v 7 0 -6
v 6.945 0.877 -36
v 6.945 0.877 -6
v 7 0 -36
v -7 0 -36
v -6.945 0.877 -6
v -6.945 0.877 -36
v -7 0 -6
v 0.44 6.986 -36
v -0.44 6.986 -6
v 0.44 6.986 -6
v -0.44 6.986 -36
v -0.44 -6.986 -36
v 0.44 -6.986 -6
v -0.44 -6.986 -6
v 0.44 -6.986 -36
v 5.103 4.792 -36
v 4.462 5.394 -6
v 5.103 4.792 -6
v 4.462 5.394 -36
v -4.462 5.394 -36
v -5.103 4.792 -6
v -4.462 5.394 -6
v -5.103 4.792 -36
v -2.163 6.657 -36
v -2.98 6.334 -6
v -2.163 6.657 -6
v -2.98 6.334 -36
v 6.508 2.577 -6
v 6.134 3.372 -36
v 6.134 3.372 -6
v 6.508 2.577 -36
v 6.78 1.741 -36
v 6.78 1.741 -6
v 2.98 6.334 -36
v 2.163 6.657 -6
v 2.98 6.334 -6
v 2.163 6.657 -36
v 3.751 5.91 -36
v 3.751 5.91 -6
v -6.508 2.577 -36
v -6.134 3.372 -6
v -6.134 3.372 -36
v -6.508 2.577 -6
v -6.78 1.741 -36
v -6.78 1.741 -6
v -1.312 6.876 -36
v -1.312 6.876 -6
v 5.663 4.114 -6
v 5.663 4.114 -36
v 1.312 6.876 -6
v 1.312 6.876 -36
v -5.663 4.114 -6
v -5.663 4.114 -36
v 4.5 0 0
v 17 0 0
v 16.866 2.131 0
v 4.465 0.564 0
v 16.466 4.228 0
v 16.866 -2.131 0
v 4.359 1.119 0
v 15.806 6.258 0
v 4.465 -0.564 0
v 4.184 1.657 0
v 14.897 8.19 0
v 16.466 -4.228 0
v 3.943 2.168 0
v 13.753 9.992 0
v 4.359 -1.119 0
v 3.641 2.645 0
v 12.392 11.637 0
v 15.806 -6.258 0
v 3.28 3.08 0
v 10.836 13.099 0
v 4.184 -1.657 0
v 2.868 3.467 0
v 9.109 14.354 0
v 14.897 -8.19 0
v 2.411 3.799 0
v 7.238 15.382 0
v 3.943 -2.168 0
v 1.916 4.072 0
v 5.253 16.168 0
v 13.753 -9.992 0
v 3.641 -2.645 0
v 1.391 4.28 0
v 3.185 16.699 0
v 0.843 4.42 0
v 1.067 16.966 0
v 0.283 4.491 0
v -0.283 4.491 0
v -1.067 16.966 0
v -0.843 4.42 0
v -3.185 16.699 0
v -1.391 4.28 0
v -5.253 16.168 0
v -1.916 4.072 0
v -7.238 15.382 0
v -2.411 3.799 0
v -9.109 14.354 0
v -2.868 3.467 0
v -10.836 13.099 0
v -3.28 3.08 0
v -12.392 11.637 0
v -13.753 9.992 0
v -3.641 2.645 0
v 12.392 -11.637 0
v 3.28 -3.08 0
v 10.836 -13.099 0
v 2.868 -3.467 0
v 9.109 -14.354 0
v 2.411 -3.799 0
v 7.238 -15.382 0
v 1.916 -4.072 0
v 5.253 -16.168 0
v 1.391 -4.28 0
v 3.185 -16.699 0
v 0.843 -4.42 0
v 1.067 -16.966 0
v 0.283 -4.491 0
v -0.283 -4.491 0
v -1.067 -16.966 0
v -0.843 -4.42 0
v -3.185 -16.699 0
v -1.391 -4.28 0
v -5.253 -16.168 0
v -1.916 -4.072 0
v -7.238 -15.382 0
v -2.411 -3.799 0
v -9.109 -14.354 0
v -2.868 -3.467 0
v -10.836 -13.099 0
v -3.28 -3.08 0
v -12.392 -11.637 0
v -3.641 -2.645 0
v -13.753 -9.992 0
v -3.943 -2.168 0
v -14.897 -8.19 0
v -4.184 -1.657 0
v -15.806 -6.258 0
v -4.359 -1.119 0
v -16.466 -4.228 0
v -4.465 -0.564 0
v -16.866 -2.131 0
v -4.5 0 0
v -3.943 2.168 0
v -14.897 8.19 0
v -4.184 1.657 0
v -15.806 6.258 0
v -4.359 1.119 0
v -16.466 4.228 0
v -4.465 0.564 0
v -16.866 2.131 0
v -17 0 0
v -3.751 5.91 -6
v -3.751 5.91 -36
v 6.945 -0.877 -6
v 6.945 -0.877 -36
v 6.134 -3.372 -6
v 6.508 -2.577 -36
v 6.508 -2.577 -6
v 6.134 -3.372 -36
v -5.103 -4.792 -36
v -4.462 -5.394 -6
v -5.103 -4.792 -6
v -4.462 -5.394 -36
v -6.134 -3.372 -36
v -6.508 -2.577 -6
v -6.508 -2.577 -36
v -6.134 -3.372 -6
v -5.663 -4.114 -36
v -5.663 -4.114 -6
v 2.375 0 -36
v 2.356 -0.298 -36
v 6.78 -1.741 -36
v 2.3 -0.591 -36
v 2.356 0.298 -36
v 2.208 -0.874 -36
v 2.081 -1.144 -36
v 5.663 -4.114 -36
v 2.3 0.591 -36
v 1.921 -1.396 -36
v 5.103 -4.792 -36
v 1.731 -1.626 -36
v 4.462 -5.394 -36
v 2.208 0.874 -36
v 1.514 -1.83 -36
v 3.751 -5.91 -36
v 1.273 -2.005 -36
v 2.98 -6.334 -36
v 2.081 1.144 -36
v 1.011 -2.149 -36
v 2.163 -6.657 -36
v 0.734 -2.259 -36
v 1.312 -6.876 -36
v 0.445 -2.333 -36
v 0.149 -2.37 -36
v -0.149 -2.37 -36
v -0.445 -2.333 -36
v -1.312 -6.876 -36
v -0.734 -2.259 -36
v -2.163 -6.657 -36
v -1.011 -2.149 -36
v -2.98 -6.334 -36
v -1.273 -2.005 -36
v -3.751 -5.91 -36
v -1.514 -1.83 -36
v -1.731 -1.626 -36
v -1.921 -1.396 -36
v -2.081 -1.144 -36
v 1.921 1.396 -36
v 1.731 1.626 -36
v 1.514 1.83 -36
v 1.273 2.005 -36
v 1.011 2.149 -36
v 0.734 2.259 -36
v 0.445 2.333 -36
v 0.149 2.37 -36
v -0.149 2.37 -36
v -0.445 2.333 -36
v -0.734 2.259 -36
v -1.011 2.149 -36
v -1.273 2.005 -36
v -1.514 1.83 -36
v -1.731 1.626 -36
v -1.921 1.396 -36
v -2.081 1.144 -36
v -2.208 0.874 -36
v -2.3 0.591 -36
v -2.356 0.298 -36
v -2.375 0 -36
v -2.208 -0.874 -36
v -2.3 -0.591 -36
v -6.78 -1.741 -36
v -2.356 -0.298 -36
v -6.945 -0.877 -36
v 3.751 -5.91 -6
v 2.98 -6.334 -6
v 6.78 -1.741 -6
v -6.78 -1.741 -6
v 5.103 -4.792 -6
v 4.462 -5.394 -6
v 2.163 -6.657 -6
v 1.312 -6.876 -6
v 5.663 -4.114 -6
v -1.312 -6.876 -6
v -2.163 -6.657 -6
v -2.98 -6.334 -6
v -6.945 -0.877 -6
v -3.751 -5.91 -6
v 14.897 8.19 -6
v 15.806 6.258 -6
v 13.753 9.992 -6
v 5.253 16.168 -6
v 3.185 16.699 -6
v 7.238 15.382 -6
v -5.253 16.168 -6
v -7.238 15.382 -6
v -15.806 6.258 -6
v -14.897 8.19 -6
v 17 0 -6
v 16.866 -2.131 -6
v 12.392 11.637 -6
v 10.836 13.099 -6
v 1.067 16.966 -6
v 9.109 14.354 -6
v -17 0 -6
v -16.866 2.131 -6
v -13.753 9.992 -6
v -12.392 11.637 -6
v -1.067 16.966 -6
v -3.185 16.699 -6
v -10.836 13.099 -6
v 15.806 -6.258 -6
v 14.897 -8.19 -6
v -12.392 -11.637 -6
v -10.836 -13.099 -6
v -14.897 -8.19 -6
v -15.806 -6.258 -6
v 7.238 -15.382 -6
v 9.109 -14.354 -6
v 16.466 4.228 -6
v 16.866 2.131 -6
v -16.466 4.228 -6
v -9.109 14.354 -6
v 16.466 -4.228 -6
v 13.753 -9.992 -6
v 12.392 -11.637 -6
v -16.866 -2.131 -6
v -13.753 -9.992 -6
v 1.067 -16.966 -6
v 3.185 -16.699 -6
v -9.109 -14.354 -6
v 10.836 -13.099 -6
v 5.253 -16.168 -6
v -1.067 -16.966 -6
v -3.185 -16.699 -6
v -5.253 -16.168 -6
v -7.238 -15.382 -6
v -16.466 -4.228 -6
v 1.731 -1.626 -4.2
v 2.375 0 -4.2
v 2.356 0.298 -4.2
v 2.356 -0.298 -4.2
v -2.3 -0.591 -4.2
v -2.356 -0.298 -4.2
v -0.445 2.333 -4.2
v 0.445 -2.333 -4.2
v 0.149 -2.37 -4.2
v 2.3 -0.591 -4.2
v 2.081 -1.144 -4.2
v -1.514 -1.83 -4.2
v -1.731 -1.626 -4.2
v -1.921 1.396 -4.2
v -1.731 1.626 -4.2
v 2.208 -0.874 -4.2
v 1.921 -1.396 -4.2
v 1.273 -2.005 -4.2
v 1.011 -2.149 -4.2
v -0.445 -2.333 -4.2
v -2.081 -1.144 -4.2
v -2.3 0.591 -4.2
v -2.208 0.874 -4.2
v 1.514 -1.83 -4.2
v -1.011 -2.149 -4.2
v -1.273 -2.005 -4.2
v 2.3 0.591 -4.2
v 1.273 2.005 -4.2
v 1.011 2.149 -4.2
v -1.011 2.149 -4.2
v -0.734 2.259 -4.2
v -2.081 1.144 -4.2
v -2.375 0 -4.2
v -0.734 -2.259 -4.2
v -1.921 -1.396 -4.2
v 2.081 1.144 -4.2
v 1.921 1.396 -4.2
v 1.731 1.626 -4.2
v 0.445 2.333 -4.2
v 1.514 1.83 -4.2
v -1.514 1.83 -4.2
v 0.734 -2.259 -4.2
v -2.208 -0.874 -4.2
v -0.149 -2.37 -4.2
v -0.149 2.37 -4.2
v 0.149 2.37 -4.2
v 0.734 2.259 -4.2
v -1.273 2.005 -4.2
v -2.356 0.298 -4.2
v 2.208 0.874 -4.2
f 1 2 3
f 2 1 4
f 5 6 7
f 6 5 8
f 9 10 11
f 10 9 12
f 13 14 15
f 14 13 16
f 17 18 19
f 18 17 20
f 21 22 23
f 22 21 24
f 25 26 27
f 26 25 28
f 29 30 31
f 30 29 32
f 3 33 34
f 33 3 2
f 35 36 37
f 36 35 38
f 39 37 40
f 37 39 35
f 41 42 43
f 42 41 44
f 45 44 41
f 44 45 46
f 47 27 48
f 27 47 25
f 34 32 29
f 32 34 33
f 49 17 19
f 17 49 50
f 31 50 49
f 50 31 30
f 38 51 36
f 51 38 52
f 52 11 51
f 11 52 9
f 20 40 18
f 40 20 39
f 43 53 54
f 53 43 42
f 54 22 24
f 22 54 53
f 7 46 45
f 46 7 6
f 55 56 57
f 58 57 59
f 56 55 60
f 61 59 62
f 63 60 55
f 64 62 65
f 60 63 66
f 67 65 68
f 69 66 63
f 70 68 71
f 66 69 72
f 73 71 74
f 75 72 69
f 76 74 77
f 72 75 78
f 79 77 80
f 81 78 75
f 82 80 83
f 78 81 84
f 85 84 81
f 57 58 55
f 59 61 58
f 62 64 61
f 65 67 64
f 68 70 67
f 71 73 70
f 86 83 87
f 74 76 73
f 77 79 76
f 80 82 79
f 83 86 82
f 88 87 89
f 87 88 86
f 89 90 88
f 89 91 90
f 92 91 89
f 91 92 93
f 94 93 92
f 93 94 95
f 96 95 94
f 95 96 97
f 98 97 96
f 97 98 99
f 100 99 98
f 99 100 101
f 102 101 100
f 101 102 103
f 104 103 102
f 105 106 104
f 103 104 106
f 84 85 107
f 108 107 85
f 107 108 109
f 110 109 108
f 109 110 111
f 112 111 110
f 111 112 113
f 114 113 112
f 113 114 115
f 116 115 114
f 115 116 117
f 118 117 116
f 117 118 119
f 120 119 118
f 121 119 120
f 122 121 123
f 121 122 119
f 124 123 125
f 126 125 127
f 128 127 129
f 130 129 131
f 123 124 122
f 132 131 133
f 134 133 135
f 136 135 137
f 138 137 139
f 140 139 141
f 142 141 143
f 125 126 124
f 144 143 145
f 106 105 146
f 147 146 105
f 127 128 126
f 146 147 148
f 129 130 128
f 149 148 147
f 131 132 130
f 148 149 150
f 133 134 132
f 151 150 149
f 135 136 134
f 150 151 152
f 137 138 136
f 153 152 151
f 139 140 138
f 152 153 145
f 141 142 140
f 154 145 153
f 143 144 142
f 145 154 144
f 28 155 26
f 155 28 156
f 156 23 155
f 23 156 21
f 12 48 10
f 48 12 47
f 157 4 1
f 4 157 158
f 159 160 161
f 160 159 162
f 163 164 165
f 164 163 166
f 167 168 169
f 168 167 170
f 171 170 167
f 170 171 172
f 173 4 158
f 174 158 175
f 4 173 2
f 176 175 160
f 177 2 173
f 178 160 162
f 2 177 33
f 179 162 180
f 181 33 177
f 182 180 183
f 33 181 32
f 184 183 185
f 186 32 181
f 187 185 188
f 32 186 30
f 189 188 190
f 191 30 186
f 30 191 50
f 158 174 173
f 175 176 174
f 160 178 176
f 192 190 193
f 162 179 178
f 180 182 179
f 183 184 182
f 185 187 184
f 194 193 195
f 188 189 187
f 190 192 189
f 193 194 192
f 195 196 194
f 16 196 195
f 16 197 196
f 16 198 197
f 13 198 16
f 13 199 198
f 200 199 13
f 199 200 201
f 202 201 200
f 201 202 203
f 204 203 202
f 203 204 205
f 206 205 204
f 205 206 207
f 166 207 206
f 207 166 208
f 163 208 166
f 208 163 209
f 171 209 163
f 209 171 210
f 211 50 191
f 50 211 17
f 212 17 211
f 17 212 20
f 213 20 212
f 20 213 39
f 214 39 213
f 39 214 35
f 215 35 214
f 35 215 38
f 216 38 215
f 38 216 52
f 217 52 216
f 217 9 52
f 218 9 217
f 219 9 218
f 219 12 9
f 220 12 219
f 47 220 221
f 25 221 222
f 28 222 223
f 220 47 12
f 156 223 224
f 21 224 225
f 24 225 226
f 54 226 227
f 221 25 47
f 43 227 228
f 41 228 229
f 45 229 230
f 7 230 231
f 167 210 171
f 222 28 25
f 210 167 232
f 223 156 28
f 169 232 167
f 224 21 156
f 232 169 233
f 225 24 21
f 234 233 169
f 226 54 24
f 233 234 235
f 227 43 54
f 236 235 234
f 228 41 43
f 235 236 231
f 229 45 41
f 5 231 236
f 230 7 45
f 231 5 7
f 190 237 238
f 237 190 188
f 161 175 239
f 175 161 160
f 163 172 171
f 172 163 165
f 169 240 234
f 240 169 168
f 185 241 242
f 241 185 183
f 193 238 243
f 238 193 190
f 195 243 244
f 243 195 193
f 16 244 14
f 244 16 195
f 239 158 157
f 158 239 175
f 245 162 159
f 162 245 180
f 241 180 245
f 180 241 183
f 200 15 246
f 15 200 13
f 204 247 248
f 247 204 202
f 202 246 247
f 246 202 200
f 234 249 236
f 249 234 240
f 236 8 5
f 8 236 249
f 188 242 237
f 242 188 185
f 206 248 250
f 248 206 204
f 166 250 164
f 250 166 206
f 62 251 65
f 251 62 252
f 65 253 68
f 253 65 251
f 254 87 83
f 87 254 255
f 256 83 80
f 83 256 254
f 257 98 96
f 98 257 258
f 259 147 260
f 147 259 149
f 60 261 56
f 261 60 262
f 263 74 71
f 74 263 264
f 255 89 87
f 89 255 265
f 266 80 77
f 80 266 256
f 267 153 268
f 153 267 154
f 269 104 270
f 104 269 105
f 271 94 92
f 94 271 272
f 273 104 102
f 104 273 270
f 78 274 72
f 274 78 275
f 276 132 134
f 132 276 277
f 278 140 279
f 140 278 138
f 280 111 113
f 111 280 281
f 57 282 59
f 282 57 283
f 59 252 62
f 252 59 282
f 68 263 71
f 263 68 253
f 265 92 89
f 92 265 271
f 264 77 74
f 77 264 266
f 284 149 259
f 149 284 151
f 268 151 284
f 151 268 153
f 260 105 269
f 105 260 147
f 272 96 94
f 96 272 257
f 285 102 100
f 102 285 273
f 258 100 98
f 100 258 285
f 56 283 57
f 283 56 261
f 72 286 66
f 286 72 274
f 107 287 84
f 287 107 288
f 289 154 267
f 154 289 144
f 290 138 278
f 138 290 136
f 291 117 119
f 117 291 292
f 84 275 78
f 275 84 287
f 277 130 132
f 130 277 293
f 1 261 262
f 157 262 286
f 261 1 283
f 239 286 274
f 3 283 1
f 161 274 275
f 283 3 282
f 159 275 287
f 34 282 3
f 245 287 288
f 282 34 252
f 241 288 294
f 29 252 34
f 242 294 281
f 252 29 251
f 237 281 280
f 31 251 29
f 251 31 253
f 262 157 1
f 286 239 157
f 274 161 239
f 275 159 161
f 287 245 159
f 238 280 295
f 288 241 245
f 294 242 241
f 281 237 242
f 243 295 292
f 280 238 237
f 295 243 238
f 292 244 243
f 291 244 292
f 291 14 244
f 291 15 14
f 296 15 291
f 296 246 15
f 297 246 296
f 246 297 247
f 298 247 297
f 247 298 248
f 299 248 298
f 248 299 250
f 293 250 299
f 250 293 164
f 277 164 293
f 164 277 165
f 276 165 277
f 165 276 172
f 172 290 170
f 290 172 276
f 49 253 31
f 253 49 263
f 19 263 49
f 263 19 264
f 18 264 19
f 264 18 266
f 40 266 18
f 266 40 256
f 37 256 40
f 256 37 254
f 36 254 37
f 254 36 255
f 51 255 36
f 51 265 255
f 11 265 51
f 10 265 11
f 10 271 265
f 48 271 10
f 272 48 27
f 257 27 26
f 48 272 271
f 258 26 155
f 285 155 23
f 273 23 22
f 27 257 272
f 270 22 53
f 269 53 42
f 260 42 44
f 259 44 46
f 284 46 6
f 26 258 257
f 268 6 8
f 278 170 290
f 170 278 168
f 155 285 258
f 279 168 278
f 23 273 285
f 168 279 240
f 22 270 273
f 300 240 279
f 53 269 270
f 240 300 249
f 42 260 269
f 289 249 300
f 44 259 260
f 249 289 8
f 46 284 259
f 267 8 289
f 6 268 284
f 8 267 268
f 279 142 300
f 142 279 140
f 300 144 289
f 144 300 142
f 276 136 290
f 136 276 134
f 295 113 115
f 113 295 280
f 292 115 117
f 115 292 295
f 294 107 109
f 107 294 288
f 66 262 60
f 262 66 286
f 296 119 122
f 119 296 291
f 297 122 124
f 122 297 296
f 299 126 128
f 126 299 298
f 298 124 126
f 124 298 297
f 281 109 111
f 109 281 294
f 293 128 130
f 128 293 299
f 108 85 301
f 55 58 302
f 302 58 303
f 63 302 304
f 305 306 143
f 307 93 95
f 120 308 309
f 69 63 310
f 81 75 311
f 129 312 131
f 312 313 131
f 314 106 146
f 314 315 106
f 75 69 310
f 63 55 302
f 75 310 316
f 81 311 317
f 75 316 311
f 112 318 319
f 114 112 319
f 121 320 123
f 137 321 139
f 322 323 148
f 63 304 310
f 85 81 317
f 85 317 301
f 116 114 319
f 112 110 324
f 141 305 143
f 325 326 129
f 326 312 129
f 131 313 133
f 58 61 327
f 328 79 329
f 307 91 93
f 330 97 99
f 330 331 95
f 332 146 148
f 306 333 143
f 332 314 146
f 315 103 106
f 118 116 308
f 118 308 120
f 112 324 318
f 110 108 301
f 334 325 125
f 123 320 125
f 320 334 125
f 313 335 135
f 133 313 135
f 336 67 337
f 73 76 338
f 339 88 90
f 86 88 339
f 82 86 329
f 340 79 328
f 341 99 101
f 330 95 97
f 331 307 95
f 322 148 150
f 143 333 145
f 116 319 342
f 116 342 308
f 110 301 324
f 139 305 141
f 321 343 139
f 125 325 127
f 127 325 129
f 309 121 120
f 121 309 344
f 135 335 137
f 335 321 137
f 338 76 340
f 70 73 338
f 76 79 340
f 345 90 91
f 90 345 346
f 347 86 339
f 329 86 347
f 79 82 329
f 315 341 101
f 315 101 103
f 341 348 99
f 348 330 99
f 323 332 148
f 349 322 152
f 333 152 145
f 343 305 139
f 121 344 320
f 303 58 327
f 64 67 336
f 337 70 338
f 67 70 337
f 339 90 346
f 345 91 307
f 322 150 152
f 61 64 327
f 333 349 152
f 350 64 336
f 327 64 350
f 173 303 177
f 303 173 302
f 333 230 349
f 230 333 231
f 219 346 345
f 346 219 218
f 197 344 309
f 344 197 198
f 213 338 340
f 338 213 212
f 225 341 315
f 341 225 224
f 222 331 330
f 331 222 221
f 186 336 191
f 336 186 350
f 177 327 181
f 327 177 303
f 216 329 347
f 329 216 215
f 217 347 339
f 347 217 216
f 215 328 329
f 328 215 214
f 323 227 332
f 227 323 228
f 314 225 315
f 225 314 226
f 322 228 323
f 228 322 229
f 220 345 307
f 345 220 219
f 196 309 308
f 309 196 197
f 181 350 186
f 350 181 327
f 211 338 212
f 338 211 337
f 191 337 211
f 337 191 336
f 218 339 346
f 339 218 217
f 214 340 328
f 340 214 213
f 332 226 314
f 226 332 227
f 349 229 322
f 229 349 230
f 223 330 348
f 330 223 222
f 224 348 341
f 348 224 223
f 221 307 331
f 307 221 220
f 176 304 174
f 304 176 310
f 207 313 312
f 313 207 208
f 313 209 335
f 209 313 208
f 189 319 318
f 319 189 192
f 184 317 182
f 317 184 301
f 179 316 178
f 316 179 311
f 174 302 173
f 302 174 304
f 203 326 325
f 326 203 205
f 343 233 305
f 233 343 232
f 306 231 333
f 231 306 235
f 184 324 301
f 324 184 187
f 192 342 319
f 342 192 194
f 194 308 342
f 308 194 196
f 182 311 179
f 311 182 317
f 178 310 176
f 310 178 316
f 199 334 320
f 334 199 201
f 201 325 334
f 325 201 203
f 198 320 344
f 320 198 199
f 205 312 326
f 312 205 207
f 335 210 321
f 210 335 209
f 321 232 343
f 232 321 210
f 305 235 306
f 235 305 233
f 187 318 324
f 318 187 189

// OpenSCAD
$fn = 50;


difference() {
	union() {
		translate(v = [0, 0, -36.0000000000]) {
			cylinder(h = 36, r = 7.0000000000);
		}
		translate(v = [0, 0, -6.0000000000]) {
			cylinder(h = 6, r = 17.0000000000);
		}
	}
	union() {
		translate(v = [0, 0, 0]) {
			rotate(a = [0, 0, 0]) {
				difference() {
					union() {
						#translate(v = [0, 0, -36.0000000000]) {
							cylinder(h = 36, r = 2.2500000000);
						}
						#translate(v = [0, 0, -4.2000000000]) {
							cylinder(h = 4.2000000000, r1 = 2.3750000000, r2 = 4.5000000000);
						}
						#translate(v = [0, 0, -36.0000000000]) {
							cylinder(h = 36, r = 2.3750000000);
						}
						#translate(v = [0, 0, -36.0000000000]) {
							cylinder(h = 36, r = 2.2500000000);
						}
					}
					union();
				}
			}
		}
	}
}
